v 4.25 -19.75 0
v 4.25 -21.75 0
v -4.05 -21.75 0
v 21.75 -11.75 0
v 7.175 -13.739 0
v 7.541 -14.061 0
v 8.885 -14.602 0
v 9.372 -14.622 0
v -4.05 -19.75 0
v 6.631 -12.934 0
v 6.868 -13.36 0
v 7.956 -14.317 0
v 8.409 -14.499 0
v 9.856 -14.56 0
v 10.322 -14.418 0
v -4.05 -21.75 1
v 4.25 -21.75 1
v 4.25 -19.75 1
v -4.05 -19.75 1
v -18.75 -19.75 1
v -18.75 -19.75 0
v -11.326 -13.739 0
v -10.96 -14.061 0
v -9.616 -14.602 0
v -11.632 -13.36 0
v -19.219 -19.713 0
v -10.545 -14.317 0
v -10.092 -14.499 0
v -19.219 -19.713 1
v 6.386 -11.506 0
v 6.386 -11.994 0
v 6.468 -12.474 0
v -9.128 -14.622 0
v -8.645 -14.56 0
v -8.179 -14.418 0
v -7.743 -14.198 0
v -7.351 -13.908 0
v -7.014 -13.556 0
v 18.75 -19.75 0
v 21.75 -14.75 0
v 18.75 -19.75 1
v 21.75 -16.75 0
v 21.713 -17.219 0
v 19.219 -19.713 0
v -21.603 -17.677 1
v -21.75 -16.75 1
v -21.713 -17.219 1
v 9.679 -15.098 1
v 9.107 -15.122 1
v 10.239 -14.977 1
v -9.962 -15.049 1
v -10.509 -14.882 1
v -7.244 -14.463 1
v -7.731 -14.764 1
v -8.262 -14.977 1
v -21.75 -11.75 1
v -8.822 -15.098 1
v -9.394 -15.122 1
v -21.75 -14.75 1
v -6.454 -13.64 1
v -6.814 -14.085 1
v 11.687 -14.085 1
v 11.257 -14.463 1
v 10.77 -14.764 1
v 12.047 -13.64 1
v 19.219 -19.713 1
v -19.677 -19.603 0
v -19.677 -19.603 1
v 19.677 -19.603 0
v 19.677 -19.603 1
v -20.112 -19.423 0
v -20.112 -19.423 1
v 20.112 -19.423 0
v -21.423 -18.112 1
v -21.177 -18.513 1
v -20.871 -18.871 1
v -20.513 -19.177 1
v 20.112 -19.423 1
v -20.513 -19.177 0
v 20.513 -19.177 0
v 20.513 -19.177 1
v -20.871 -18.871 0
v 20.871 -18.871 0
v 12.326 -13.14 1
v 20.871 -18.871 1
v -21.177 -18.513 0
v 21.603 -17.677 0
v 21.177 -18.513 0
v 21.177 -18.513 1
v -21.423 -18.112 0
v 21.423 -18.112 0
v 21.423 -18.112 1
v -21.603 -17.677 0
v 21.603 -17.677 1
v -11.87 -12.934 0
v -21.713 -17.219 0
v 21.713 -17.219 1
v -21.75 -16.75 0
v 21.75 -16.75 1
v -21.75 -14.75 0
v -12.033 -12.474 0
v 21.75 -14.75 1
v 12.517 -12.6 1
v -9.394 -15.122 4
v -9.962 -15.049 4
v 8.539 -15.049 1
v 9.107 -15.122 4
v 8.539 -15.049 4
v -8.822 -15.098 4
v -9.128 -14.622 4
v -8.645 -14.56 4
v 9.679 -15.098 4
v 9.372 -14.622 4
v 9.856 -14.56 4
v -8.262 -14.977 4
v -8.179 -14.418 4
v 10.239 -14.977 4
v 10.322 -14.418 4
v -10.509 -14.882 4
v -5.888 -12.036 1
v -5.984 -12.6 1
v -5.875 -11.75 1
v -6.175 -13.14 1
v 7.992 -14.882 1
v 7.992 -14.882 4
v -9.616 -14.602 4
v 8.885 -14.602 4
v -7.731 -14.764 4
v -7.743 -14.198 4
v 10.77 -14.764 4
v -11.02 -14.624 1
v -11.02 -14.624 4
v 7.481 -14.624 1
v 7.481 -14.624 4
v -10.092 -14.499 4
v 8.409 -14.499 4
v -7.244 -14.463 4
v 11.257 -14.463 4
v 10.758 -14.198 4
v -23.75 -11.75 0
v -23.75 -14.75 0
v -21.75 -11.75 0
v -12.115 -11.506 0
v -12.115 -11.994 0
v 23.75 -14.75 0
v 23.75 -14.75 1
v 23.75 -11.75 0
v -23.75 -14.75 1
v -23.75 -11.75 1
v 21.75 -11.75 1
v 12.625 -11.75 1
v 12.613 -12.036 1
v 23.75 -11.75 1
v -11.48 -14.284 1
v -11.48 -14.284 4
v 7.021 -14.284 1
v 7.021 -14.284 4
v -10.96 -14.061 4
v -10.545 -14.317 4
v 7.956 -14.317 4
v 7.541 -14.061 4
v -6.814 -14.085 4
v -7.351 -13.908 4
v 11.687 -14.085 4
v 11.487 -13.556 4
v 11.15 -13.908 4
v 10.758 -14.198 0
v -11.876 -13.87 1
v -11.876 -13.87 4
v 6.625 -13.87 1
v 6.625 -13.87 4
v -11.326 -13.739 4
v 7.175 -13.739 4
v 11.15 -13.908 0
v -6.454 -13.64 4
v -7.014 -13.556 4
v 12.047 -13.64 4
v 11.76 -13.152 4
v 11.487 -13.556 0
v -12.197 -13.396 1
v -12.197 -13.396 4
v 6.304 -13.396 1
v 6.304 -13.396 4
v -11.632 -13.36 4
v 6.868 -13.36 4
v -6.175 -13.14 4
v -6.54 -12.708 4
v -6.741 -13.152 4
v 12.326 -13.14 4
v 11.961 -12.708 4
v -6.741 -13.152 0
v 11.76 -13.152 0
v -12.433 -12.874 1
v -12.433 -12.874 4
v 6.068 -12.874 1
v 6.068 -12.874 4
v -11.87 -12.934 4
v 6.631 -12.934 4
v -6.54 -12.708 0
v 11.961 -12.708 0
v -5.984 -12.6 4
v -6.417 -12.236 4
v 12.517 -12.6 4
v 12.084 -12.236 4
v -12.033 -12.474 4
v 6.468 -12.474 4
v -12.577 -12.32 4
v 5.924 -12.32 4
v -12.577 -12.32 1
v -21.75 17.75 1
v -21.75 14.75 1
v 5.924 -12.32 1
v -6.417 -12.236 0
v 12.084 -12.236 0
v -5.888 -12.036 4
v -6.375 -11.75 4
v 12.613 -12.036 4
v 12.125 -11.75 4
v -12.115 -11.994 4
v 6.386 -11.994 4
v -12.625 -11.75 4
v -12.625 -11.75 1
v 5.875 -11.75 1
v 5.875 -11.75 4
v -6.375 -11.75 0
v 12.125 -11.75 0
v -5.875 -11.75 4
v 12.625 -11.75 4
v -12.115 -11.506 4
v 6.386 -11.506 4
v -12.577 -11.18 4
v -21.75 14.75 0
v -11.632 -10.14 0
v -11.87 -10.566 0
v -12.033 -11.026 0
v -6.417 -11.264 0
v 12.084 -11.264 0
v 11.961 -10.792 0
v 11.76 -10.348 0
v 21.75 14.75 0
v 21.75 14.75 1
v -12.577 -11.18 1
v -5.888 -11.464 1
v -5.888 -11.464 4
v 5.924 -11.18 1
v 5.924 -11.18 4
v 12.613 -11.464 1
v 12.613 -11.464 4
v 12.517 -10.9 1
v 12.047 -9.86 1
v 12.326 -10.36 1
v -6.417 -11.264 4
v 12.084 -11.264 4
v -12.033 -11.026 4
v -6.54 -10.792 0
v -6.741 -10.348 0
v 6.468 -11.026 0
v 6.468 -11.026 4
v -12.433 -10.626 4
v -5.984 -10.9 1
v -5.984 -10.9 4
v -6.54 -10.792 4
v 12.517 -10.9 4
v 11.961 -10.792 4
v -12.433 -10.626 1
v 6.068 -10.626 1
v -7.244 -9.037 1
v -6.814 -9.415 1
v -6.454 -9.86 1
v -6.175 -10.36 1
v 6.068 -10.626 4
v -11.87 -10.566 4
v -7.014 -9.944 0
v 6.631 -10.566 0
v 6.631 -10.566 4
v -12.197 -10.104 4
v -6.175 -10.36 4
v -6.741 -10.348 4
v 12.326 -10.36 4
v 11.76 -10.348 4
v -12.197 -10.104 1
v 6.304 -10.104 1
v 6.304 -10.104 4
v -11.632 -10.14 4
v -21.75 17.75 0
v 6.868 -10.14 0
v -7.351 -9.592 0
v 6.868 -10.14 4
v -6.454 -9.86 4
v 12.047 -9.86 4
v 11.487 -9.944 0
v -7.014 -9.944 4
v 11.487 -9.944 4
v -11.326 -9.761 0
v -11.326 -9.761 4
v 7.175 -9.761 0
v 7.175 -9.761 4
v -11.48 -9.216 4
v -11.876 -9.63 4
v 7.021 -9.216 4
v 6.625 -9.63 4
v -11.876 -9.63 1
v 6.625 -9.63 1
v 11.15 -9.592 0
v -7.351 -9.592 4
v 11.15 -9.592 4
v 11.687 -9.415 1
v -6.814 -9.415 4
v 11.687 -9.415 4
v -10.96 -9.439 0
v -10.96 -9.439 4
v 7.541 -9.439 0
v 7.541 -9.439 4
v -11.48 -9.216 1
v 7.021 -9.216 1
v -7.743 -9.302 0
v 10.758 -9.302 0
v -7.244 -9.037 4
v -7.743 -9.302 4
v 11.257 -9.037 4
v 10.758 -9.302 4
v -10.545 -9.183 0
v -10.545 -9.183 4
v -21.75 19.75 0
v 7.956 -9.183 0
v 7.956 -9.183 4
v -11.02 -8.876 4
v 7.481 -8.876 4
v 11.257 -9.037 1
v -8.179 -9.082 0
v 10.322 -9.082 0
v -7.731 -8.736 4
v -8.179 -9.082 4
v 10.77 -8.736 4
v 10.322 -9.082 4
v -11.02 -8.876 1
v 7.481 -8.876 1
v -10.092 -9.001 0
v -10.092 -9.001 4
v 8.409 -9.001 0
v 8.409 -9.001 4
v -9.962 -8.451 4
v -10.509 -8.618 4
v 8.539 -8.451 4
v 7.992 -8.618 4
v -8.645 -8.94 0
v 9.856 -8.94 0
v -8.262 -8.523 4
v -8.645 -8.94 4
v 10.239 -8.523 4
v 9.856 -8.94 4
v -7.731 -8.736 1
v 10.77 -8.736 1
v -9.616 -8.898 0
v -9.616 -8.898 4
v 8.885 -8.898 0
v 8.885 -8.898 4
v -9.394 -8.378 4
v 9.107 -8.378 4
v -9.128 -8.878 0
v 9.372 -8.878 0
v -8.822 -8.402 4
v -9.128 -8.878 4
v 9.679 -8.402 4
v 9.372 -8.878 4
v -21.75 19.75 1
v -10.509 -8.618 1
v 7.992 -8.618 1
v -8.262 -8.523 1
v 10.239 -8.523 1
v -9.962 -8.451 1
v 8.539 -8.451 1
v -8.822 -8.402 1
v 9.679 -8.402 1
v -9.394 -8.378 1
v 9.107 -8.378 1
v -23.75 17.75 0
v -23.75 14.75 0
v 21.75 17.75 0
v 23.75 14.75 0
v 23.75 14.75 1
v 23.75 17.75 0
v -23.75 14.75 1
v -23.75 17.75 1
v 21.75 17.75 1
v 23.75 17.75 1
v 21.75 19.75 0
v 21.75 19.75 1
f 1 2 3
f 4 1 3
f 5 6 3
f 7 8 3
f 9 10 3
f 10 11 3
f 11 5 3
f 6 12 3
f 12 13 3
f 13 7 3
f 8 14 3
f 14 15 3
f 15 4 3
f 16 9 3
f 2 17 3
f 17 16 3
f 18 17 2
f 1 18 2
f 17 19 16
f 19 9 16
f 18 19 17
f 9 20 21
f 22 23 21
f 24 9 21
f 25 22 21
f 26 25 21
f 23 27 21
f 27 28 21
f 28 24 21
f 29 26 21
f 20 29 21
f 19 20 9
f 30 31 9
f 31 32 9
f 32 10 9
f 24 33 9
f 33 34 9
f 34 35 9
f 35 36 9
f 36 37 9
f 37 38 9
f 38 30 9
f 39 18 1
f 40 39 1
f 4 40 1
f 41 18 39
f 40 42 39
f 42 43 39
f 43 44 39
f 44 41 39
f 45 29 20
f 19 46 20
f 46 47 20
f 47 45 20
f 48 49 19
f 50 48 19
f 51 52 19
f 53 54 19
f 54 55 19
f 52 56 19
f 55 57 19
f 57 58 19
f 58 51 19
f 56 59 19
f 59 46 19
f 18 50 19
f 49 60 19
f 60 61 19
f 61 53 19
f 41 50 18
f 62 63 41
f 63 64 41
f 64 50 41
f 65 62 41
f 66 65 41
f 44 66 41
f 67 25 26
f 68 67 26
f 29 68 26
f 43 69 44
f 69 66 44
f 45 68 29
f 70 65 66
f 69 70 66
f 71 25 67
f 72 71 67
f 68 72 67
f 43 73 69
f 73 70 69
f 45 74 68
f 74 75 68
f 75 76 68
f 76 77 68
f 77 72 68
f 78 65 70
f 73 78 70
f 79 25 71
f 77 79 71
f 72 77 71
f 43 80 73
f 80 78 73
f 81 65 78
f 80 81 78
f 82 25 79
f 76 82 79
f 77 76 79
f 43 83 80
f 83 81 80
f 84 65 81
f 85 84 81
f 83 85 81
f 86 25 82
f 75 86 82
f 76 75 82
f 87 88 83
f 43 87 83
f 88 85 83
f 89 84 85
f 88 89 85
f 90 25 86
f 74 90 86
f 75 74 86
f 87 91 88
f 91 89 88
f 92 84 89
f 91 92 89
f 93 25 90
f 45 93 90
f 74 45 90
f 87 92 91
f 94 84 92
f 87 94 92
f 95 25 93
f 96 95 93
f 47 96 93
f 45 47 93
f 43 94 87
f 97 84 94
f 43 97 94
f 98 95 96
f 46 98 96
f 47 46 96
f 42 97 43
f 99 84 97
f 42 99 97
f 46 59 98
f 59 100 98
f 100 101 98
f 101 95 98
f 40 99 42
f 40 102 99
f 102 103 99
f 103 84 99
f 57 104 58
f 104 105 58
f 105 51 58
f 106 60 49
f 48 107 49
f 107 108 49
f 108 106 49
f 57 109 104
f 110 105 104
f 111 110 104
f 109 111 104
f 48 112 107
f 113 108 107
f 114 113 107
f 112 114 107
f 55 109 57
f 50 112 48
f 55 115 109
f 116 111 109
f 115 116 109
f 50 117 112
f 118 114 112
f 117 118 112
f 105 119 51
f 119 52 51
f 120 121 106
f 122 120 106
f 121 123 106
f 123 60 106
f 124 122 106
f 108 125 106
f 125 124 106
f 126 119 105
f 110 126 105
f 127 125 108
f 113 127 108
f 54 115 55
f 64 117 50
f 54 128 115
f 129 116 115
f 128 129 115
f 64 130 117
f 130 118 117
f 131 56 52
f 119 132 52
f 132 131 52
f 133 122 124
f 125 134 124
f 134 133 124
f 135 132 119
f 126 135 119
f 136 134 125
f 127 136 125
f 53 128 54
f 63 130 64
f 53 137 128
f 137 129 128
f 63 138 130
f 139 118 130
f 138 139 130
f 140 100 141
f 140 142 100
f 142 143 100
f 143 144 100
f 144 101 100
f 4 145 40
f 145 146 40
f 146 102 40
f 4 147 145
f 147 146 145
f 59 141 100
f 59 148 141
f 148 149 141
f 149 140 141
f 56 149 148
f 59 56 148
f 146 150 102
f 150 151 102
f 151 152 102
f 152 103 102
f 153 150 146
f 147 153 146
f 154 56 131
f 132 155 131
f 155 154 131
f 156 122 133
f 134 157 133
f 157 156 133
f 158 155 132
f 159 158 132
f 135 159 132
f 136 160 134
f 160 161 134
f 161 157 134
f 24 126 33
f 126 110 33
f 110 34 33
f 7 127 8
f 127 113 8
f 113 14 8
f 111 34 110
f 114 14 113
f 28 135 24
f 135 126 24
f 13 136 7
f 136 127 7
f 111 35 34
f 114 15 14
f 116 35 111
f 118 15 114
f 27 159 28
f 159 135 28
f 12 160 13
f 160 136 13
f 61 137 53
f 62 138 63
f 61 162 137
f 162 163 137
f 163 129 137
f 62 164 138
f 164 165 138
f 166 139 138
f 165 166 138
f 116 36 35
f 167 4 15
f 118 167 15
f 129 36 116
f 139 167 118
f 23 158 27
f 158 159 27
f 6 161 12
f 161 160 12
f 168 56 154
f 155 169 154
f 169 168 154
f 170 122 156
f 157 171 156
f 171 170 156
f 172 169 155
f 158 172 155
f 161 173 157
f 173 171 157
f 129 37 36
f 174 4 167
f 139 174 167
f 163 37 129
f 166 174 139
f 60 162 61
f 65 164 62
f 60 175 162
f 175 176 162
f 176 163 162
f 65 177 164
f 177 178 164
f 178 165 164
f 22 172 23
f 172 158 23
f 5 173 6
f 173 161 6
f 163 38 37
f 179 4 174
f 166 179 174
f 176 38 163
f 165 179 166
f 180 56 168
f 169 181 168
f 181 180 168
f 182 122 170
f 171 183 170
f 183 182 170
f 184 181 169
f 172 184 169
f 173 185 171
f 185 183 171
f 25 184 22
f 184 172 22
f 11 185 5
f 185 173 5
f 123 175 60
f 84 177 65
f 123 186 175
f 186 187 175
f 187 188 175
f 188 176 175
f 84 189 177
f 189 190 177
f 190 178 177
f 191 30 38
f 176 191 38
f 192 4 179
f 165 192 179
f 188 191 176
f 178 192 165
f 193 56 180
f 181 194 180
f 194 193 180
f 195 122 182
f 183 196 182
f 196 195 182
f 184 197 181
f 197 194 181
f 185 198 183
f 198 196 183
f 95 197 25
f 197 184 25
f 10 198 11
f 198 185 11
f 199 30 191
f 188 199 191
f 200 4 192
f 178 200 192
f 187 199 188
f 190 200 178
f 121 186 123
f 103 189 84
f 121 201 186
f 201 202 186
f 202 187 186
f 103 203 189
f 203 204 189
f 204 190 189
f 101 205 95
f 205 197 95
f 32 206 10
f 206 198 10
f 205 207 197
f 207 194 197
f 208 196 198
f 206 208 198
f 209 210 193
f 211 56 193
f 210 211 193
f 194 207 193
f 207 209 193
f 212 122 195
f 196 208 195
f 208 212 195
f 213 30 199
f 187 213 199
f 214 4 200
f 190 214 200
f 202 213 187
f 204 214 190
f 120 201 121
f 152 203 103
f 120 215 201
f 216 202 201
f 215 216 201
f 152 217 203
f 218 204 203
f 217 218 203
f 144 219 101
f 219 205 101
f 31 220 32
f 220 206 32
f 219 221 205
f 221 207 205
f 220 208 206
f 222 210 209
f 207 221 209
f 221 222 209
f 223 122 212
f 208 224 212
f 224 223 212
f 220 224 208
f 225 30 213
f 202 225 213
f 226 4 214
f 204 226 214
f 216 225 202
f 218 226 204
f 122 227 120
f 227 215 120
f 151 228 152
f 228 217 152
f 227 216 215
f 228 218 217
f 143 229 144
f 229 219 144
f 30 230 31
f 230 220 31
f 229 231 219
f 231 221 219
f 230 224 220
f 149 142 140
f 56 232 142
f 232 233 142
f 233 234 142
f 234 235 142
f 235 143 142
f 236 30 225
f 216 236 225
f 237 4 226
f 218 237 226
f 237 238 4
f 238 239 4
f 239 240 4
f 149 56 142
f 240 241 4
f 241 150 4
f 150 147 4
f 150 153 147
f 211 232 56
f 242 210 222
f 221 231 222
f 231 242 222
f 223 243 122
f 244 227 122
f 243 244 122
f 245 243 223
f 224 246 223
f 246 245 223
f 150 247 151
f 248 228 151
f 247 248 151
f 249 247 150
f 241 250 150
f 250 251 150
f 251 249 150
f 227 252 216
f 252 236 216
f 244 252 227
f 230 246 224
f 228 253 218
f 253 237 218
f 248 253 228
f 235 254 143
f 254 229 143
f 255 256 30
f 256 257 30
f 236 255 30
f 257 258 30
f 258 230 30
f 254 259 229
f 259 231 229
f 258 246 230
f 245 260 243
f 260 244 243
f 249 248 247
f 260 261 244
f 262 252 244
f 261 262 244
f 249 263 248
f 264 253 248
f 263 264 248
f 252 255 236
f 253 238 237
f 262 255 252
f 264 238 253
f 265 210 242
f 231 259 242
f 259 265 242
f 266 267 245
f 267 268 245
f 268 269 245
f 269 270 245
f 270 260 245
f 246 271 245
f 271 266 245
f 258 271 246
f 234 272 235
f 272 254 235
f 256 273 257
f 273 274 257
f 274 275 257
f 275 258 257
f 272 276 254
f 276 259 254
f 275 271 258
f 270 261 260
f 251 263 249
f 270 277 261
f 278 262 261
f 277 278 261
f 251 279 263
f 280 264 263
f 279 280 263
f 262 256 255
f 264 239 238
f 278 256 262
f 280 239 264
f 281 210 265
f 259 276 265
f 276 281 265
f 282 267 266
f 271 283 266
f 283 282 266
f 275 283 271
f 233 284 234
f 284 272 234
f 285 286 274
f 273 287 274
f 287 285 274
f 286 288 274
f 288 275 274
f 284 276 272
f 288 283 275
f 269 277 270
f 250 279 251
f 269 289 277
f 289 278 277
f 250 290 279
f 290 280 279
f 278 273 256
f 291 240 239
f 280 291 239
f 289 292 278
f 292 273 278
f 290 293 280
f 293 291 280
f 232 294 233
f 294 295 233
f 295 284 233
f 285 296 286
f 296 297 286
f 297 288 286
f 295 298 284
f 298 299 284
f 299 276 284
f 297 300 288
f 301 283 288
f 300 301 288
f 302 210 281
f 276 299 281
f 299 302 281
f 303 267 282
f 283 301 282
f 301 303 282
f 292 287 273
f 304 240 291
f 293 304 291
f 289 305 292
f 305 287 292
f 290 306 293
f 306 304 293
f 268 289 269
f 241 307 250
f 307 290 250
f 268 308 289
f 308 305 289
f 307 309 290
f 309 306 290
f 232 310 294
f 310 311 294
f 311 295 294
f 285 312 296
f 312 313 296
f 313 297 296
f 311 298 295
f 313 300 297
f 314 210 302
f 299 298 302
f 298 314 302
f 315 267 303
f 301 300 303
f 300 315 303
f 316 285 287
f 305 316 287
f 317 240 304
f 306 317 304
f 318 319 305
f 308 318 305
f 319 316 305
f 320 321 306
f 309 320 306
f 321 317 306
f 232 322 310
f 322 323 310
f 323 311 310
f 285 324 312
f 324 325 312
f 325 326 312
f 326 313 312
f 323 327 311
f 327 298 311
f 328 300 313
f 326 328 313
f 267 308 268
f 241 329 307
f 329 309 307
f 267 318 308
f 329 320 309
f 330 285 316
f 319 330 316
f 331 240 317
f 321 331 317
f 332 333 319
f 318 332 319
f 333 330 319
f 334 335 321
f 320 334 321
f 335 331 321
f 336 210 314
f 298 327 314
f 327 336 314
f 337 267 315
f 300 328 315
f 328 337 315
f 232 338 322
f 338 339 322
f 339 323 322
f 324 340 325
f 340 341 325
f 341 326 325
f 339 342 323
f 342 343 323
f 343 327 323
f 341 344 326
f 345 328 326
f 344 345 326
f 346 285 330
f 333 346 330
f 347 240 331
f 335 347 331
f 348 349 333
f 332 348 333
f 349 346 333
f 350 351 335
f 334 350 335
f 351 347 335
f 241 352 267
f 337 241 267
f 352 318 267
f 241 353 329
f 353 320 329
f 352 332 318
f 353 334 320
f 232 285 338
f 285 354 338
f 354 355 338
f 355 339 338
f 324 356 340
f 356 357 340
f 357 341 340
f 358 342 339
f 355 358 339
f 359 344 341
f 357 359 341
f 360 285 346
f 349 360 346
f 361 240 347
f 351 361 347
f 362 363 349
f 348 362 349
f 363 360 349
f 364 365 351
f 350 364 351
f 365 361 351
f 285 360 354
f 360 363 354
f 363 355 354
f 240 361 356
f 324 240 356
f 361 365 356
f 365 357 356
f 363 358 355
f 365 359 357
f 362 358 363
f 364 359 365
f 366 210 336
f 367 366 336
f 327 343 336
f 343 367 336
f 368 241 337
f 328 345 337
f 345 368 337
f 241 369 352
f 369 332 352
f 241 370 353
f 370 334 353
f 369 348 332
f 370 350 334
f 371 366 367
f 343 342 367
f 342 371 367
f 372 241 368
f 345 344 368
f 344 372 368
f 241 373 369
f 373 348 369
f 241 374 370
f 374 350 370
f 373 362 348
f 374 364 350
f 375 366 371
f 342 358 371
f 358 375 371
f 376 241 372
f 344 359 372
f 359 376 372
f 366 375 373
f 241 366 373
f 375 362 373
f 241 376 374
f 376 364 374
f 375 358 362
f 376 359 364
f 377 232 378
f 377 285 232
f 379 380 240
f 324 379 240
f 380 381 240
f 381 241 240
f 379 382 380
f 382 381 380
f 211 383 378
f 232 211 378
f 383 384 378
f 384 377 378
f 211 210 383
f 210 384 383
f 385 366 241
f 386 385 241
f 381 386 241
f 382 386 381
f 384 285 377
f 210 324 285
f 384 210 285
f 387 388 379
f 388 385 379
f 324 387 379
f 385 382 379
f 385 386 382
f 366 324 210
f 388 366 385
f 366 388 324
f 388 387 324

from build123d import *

# Parameters (mm, degrees)
SKETCH1_W            = 43.5
SKETCH1_H            = 39.5
BODY_DEPTH           = 1
SKETCH2_W            = 1
SKETCH2_H            = 3
CLIPS_R_DEPTH        = 2
SKETCH3_W            = 1
SKETCH3_H            = 3
CLIPS_L_DEPTH        = 2
SKETCH4_W            = 8.299556423
SKETCH4_H            = 1
CLIPS_B_DEPTH        = 2
SKETCH5_R            = 3.375
PADDLE_SUPPORT_DEPTH = 3
SKETCH6_R            = 2.875
BOLTS_DEPTH          = 5
FILLET1_R            = 3


with BuildPart() as part:
    # Sketch1 → body (new body)
    with BuildSketch(Plane.XY):
        Rectangle(SKETCH1_W, SKETCH1_H)
    extrude(amount=BODY_DEPTH)

    # Sketch2 → clips_r (add)
    with BuildSketch(Plane(origin=(21.75, 0, 0), x_dir=(0, 0, -1), z_dir=(1, 0, 0))):
        with Locations((-0.5, 16.25)):
            Rectangle(SKETCH2_W, SKETCH2_H)
        with Locations((-0.5, -13.25)):
            Rectangle(SKETCH2_W, SKETCH2_H)
    extrude(amount=CLIPS_R_DEPTH)

    # Sketch3 → clips_l (add)
    with BuildSketch(Plane.ZY.offset(21.75)):
        with Locations((0.5, -13.25)):
            Rectangle(SKETCH3_W, SKETCH3_H)
        with Locations((0.5, 16.25)):
            Rectangle(SKETCH3_W, SKETCH3_H)
    extrude(amount=CLIPS_L_DEPTH)

    # Sketch4 → clips_b (add)
    with BuildSketch(Plane.XZ.offset(19.75)):
        with Locations((0.100221788, 0.5)):
            Rectangle(SKETCH4_W, SKETCH4_H)
    extrude(amount=CLIPS_B_DEPTH)

    # Sketch5 → paddle_support (add)
    with BuildSketch(Plane.XY.offset(1)):
        with Locations((9.250464542, -11.75)):
            Circle(SKETCH5_R)
        with Locations((-9.250464542, -11.75)):
            Circle(SKETCH5_R)
    extrude(amount=PADDLE_SUPPORT_DEPTH)

    # Sketch6 → bolts (cut, through all)
    with BuildSketch(Plane.XY.offset(4)):
        with Locations((-9.250464542, -11.75)):
            Circle(SKETCH6_R)
        with Locations((9.250464542, -11.75)):
            Circle(SKETCH6_R)
    extrude(amount=-BOLTS_DEPTH, mode=Mode.SUBTRACT)

    # Fillet1
    fillet1_edges = [part.edges().sort_by_distance(p)[0] for p in [
        (21.75, -19.75, 0.5),
        (-21.75, -19.75, 0.5),
    ]]
    fillet(fillet1_edges, radius=FILLET1_R)


solid = part.part
